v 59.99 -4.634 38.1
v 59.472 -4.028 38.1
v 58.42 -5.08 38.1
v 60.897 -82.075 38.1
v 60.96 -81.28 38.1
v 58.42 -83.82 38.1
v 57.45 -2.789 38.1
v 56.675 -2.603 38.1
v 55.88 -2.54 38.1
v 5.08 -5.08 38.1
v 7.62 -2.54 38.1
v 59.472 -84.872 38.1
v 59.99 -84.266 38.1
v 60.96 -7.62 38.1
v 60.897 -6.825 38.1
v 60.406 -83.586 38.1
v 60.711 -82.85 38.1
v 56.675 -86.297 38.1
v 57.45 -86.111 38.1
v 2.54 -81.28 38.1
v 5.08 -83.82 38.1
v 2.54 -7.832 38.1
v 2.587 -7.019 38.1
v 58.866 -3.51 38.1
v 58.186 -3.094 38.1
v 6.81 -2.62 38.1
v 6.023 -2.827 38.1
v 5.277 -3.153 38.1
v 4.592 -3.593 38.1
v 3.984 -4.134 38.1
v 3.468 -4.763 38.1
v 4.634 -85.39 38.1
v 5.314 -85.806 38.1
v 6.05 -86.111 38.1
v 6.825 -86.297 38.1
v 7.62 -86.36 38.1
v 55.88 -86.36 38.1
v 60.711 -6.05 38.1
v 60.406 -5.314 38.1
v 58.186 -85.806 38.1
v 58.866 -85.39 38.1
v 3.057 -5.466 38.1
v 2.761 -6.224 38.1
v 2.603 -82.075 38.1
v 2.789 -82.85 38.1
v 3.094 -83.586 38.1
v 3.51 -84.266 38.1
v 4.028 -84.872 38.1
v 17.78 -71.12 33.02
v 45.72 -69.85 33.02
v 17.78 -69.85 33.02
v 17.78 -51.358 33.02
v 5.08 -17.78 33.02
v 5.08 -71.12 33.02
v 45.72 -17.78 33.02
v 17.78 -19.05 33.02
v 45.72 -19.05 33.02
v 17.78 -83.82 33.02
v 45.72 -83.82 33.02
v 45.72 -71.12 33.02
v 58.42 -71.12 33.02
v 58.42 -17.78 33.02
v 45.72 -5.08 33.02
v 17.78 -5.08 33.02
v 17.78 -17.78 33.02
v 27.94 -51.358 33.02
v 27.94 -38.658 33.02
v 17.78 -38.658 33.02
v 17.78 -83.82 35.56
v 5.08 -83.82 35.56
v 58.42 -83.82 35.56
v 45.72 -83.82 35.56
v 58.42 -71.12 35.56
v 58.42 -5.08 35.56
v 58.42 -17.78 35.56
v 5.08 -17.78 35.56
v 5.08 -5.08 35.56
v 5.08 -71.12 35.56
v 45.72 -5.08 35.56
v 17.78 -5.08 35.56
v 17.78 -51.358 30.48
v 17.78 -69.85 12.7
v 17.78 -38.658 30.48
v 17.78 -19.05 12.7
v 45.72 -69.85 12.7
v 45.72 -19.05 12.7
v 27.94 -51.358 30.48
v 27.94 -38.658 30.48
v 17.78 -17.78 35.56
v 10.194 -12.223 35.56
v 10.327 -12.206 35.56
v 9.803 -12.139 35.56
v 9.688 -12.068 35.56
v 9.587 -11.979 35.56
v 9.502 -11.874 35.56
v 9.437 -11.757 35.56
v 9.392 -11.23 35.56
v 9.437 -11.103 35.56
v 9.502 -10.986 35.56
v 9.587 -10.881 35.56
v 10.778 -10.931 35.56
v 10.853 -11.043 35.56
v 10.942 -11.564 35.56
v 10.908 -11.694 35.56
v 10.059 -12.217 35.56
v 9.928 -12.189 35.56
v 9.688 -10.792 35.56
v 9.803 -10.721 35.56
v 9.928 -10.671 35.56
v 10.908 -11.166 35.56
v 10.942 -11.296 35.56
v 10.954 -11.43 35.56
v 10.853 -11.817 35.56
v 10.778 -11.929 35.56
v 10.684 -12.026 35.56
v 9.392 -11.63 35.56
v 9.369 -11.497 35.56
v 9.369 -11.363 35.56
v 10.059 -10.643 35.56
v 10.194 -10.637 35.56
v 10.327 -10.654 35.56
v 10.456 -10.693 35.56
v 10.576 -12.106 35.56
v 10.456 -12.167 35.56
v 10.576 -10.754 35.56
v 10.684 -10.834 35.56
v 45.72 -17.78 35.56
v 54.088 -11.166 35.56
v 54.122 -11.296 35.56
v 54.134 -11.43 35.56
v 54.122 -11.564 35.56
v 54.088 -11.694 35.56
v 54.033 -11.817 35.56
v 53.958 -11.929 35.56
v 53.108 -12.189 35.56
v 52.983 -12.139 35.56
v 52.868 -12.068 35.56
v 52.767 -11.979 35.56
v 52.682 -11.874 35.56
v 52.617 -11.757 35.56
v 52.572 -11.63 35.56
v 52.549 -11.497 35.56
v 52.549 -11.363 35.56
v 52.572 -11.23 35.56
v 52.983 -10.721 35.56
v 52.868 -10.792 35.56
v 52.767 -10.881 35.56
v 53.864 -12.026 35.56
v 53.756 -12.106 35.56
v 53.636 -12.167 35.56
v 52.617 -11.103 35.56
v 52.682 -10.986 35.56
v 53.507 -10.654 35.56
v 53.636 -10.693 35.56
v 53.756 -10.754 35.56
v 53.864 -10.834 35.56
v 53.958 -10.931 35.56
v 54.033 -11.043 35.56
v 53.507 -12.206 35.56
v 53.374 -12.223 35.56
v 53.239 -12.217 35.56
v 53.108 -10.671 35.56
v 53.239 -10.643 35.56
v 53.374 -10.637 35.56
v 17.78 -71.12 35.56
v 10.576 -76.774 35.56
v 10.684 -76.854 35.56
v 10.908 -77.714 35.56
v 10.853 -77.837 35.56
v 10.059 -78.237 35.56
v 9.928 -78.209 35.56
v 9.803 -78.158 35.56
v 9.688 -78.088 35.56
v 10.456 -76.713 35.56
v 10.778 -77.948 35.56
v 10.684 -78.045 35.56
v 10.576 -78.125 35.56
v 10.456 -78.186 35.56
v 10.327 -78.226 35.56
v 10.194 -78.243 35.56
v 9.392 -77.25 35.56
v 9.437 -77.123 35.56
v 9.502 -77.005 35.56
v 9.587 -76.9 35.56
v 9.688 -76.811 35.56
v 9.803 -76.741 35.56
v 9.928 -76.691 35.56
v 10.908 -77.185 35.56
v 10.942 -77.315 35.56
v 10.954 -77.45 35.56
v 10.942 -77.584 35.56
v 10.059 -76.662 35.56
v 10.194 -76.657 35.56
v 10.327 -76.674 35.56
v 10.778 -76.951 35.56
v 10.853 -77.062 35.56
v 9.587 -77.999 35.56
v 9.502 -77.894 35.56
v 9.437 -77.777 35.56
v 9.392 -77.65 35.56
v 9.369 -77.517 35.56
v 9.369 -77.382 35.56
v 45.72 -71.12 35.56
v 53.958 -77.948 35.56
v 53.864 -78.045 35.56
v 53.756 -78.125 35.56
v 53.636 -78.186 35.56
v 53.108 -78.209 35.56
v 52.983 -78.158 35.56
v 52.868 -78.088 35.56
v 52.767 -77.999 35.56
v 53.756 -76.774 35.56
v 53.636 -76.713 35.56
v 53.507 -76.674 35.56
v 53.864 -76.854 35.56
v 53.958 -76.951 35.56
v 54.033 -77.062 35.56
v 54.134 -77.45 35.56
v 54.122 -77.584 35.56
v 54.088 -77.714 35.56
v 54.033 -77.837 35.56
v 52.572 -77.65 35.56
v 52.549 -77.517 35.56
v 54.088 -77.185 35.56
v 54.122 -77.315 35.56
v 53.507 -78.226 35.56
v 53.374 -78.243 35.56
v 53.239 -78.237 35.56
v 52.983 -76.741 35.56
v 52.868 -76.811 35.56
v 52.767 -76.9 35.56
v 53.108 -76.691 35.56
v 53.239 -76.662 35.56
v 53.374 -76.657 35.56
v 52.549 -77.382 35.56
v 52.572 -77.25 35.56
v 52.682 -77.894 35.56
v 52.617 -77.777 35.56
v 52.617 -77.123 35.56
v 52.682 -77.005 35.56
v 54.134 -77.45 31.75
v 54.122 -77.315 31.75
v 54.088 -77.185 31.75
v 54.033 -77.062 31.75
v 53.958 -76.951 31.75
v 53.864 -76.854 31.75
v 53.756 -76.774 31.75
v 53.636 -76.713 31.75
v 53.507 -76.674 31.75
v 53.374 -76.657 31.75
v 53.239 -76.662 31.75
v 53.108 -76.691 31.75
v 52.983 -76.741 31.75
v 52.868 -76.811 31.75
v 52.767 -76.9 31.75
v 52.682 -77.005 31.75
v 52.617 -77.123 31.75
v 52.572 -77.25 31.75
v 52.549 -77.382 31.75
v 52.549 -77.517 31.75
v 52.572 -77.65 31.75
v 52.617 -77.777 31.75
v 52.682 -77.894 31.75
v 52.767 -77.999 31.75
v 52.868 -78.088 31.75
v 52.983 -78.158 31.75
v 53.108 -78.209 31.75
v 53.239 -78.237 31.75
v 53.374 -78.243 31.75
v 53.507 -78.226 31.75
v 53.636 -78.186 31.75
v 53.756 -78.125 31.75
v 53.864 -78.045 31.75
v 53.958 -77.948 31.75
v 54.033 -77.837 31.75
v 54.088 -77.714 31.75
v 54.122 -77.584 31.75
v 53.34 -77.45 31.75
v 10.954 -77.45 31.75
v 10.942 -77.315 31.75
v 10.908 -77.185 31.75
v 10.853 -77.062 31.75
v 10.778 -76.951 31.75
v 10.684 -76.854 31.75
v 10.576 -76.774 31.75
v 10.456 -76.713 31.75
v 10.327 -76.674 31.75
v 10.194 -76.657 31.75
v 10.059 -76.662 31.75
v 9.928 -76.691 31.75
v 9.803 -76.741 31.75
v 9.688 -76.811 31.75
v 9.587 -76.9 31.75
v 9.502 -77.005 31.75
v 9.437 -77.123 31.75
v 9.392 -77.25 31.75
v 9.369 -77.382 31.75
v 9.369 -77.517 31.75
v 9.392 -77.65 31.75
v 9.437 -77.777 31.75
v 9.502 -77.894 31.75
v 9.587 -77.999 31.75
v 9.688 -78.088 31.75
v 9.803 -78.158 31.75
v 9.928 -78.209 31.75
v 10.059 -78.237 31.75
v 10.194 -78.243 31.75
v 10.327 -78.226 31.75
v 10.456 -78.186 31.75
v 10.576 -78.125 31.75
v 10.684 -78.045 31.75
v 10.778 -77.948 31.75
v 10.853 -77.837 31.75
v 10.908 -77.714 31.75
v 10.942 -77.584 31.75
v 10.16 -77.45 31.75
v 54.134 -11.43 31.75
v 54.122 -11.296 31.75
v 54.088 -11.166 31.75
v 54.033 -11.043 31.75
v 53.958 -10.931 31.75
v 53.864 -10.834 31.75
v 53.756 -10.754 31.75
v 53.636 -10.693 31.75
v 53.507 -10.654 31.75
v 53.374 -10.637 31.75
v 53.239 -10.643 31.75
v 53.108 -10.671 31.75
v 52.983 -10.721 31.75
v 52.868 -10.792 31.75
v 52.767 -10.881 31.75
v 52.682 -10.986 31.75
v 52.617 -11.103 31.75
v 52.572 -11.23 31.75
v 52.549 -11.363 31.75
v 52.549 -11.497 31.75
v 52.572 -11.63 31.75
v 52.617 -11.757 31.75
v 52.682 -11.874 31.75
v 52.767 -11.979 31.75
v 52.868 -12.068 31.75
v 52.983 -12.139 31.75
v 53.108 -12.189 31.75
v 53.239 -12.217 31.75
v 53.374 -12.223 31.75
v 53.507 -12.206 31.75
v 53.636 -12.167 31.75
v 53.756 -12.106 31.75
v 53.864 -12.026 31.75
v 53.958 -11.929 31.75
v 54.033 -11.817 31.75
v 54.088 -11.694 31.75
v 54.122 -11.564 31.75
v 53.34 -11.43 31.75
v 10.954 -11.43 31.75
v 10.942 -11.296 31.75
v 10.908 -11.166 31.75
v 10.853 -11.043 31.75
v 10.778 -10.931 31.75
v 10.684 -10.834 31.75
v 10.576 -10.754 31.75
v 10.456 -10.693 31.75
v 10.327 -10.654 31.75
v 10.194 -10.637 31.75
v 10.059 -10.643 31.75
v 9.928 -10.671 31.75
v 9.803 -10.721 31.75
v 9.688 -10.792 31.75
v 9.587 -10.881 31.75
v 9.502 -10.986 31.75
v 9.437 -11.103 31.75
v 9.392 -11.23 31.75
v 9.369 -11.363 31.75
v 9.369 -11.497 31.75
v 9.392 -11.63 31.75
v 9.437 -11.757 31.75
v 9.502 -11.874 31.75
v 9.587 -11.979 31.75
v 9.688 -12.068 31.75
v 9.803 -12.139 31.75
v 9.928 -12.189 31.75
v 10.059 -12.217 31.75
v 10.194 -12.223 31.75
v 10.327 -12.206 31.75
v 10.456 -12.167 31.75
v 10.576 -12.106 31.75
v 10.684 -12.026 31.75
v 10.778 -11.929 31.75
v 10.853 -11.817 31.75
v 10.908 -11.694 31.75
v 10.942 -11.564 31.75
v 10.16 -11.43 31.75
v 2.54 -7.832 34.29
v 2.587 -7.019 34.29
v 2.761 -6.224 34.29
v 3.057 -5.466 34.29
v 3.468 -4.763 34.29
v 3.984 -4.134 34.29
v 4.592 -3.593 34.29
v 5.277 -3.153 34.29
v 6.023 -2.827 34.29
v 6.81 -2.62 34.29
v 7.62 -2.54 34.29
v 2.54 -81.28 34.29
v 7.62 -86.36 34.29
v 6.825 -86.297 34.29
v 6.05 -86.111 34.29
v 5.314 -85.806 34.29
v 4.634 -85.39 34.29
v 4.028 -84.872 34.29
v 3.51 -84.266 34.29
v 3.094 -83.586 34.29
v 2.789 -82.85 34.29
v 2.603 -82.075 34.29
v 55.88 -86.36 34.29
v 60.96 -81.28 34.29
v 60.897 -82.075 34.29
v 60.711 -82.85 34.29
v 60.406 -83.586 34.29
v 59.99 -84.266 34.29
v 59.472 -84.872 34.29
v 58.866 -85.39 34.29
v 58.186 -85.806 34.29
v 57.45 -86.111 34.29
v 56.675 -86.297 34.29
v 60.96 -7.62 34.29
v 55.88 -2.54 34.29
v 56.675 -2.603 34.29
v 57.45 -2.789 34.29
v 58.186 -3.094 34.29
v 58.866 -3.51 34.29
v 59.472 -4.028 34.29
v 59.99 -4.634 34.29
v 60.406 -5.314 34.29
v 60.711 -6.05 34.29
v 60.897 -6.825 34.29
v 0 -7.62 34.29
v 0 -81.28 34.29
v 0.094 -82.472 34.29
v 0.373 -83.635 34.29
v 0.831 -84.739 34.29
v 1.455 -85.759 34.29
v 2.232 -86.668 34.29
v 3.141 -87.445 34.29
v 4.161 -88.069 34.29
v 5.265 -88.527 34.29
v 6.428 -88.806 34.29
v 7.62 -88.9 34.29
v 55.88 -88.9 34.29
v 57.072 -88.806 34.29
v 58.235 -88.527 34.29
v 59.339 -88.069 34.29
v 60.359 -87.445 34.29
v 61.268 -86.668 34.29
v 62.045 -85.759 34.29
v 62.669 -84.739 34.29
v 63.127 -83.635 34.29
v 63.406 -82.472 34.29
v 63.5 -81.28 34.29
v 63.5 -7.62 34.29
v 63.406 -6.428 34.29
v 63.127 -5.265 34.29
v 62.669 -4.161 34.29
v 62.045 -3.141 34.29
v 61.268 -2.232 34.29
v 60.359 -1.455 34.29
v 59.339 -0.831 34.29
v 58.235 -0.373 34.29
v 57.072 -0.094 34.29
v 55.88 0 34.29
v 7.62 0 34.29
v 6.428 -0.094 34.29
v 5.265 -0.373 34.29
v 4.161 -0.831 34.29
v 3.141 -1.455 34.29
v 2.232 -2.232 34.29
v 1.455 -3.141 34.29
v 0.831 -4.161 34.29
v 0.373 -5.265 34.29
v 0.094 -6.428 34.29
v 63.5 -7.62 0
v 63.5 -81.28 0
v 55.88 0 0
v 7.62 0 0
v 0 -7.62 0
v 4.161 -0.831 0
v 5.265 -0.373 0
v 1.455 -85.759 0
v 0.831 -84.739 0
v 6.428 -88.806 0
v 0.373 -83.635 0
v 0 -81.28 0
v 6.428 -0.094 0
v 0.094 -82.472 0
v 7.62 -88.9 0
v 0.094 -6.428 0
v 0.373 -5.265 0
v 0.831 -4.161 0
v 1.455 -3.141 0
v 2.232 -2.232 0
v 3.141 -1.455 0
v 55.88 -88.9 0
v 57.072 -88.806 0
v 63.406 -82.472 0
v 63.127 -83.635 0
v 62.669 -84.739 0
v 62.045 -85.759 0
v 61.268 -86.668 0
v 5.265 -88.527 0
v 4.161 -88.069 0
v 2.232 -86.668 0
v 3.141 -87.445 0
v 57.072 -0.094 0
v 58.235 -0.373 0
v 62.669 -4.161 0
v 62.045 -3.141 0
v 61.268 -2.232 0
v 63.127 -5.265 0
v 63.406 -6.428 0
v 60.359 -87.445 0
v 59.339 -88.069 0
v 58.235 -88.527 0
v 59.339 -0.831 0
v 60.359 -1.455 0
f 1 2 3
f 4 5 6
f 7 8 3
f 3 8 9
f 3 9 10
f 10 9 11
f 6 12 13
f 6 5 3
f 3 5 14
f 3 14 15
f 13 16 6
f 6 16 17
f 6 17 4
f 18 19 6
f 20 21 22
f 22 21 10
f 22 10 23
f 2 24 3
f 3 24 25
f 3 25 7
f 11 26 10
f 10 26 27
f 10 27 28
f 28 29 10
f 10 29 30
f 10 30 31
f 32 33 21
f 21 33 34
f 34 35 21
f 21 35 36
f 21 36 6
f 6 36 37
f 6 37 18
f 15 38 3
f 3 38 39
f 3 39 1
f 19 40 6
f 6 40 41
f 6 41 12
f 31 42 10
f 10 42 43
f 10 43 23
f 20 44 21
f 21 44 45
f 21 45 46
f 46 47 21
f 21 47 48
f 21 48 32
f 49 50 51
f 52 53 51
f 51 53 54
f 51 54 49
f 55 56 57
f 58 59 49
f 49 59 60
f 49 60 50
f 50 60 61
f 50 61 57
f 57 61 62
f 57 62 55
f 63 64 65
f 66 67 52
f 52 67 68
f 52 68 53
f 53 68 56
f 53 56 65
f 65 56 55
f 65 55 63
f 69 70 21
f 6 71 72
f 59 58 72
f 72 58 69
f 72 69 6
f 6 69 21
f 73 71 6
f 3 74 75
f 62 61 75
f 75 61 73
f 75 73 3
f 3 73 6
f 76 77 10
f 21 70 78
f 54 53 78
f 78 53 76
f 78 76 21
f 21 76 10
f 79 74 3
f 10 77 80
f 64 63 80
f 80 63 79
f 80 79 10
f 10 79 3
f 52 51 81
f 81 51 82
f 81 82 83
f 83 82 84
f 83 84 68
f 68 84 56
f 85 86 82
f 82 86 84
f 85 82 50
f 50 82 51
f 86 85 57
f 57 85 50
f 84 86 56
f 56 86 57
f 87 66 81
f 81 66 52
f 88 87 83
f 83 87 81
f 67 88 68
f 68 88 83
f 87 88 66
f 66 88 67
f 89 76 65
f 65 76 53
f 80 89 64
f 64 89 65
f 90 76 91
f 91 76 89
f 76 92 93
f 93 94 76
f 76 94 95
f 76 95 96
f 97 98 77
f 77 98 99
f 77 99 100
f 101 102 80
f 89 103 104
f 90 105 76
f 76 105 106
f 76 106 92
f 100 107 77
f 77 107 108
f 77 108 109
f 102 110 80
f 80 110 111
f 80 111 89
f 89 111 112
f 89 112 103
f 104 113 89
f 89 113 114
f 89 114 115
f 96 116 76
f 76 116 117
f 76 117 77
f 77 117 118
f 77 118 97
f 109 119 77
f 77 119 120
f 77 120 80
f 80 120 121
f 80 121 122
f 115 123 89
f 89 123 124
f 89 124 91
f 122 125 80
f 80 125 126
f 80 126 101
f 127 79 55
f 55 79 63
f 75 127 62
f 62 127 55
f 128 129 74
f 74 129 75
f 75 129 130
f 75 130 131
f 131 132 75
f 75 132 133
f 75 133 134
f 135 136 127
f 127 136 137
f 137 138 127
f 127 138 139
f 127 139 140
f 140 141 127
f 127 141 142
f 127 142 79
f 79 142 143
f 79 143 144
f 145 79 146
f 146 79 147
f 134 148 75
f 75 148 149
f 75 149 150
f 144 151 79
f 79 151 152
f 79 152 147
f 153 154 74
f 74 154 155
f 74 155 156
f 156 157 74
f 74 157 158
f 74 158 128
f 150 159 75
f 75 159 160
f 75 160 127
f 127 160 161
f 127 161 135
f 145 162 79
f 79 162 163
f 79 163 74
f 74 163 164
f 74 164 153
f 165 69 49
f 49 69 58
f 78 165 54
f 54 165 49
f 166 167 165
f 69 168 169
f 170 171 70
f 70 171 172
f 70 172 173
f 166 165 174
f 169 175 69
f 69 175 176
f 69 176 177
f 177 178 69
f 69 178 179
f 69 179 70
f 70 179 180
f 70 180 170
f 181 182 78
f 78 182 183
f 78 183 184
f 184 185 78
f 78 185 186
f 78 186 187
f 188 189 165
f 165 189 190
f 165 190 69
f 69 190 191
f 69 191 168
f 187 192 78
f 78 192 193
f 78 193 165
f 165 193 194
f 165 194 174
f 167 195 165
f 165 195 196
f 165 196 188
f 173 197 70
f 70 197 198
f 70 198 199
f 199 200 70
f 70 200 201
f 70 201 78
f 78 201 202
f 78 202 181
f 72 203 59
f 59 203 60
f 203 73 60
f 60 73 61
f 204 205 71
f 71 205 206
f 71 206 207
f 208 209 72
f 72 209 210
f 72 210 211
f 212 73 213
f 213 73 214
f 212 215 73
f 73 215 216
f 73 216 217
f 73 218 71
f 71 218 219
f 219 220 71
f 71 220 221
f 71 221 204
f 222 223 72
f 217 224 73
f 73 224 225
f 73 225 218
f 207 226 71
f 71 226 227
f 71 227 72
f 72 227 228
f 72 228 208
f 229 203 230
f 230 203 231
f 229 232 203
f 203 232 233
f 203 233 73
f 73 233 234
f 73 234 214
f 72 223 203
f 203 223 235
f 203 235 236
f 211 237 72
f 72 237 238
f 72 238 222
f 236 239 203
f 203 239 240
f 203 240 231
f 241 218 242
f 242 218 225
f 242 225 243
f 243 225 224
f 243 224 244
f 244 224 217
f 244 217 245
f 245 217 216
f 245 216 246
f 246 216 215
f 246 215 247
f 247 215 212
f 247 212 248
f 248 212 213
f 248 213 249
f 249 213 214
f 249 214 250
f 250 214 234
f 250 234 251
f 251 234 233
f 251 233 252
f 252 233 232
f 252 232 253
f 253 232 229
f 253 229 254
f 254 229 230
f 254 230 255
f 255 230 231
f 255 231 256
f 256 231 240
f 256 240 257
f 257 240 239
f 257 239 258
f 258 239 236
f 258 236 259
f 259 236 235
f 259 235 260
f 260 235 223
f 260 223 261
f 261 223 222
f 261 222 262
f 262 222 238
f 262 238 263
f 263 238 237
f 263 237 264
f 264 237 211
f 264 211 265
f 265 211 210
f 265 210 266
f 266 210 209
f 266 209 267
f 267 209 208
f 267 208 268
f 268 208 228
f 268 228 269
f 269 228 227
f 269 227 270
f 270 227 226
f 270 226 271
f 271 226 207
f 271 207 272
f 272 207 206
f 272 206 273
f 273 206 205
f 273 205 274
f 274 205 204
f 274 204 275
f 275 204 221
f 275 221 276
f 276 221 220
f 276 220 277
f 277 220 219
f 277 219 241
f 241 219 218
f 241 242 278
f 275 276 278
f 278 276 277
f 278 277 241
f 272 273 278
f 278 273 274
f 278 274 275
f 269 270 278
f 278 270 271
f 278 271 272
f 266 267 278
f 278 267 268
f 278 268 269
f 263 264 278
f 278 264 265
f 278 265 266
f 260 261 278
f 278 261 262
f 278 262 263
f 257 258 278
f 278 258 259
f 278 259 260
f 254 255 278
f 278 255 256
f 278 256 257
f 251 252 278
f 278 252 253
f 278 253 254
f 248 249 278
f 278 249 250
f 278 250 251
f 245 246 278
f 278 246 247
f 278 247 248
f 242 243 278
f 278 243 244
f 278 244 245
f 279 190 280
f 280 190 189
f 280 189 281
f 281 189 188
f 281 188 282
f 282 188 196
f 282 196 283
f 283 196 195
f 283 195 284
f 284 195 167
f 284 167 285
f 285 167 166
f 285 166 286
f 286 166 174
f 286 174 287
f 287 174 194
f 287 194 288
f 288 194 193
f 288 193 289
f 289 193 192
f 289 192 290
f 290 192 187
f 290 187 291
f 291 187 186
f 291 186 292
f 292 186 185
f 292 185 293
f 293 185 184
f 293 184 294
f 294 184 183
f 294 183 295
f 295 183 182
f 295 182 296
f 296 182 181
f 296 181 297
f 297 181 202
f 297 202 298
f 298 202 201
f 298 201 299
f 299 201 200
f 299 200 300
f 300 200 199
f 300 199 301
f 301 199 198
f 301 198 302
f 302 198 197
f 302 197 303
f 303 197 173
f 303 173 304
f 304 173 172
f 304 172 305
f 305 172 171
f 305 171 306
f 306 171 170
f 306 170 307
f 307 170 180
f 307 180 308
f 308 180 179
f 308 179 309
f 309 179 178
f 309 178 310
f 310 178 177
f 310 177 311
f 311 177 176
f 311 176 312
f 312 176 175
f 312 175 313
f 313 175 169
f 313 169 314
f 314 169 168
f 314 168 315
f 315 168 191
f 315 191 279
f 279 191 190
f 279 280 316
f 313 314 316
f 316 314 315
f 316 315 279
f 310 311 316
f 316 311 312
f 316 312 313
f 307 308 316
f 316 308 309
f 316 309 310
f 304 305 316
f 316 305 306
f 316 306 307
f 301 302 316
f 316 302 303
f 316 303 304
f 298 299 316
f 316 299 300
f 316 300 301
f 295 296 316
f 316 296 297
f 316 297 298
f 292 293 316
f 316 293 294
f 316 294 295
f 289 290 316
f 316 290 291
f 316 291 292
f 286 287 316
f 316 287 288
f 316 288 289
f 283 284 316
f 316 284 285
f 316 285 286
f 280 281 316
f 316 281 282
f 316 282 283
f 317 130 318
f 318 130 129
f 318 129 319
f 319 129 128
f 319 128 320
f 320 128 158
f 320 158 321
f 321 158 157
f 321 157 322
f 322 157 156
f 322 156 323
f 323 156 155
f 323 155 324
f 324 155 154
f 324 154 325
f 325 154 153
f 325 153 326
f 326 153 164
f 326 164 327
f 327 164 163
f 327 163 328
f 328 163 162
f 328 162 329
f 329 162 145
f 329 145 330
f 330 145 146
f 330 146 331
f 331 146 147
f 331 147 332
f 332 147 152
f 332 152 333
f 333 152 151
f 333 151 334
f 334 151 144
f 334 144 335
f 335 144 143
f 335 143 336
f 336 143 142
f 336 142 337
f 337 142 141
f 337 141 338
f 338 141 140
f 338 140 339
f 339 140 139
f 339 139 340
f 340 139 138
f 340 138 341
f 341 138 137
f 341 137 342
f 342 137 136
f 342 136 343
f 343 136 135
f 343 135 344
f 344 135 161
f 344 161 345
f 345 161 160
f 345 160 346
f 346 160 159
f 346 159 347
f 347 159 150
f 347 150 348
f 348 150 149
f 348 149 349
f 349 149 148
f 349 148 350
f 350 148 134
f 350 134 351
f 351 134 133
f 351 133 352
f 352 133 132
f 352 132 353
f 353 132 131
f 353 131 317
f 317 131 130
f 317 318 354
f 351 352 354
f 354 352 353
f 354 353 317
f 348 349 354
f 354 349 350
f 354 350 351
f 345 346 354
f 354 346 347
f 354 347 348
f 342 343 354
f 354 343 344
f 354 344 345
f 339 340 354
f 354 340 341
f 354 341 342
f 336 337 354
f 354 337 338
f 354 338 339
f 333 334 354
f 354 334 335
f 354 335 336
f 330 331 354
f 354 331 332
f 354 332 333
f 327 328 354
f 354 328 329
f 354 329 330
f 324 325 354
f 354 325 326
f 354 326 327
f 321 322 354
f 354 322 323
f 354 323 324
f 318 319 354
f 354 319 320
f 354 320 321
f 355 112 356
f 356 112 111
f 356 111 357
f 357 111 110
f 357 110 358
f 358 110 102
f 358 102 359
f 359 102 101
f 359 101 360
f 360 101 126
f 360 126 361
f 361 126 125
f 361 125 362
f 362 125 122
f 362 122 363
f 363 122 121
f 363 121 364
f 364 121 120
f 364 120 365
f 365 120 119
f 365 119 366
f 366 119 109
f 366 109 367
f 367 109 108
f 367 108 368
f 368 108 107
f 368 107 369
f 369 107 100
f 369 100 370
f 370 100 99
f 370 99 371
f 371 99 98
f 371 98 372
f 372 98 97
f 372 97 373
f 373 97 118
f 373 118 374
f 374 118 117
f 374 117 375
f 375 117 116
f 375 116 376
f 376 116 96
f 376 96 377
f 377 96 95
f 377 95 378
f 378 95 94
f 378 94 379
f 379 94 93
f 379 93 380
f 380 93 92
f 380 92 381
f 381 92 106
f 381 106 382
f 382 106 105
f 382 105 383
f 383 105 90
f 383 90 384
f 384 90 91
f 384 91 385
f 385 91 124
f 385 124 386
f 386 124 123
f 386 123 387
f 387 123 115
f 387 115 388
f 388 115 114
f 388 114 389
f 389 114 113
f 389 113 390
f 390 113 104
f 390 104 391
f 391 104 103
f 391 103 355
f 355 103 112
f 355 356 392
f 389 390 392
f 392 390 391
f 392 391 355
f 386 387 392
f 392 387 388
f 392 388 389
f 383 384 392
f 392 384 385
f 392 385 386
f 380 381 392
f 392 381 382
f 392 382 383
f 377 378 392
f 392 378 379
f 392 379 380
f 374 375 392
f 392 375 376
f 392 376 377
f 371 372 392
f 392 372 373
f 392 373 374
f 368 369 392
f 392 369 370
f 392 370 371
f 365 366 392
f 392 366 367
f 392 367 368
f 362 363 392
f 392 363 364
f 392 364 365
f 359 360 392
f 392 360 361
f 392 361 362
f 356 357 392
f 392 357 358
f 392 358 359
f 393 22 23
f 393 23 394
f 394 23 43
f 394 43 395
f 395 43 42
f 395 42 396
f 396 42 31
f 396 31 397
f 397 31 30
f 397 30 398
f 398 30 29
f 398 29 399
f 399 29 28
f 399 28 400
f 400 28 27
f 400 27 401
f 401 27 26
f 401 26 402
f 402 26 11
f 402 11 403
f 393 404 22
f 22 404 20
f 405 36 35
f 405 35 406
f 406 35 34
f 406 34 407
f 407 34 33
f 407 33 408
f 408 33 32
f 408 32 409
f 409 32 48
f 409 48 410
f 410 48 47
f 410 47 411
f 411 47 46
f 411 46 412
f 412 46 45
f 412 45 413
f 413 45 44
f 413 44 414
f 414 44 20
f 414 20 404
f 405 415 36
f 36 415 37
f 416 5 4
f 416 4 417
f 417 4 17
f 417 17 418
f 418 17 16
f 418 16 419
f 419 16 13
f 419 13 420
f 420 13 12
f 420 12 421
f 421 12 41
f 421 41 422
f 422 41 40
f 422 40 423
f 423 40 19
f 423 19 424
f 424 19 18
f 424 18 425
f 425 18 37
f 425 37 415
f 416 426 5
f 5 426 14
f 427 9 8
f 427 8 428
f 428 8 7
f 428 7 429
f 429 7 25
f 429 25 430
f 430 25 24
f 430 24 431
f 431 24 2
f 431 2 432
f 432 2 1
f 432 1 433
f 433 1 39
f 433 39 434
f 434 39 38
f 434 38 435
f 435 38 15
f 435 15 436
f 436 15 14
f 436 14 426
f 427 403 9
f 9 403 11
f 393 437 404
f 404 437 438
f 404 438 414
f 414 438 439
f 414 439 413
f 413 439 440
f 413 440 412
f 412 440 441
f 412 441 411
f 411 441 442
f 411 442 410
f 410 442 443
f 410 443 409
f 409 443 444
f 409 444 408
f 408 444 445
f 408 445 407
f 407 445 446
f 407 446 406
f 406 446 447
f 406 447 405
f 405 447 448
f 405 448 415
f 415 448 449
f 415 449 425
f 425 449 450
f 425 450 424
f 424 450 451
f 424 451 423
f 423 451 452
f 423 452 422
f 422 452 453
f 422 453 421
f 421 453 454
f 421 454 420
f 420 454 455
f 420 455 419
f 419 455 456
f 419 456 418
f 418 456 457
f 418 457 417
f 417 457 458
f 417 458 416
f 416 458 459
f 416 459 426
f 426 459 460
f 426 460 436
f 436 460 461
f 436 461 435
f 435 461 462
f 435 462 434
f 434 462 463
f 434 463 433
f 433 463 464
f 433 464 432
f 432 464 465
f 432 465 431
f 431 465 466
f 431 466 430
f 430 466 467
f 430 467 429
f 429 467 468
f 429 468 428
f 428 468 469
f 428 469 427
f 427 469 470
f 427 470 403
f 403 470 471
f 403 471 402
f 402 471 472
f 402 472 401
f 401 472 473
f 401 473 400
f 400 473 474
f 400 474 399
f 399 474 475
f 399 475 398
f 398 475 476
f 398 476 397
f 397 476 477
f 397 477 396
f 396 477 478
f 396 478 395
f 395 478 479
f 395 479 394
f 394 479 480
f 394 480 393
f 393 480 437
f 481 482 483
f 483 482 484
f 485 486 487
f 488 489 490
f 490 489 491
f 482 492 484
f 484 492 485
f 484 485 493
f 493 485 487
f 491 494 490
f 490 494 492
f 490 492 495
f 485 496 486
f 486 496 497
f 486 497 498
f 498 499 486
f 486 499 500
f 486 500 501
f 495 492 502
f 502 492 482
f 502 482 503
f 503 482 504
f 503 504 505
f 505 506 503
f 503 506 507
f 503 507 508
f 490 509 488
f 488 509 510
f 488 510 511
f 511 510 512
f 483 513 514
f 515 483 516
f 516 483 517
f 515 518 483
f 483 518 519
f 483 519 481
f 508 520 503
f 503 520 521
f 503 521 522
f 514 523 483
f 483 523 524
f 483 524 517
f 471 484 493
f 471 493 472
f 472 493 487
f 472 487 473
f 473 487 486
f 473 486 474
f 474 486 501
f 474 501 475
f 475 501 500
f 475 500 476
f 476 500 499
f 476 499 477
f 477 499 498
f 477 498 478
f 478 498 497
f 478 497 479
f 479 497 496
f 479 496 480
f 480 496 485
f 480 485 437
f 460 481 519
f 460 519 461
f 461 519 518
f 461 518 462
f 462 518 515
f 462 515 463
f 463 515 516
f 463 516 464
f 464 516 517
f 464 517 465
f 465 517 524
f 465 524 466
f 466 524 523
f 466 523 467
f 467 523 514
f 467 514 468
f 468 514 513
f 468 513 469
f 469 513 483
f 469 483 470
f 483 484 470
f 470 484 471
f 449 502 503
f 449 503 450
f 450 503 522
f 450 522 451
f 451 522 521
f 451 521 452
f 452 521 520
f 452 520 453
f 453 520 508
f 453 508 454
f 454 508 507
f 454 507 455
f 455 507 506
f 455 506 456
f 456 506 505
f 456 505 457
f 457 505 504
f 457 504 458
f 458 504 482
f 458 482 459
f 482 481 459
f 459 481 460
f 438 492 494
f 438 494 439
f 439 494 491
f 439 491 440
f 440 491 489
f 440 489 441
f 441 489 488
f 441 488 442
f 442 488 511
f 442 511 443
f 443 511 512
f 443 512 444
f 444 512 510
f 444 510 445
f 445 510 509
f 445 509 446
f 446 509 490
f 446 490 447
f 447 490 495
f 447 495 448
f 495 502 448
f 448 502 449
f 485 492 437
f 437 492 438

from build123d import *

# Parameters (mm, degrees)
SKETCH1_W           = 63.5
SKETCH1_H           = 88.9
BOSS_EXTRUDE1_DEPTH = 38.1
SKETCH2_W           = 27.94
SKETCH2_H           = 50.8
CUT_EXTRUDE1_DEPTH  = 25.4
SKETCH3_W           = 53.34
SKETCH3_H           = 78.74
CUT_EXTRUDE2_DEPTH  = 5.08
SKETCH4_W           = 2.54
SKETCH4_H           = 12.7
BOSS_EXTRUDE2_DEPTH = 10.16
SKETCH5_W           = 12.7
SKETCH5_H           = 12.7
BOSS_EXTRUDE3_DEPTH = 2.54
SKETCH7_R           = 0.79375
CUT_EXTRUDE3_DEPTH  = 3.81
FILLET1_R           = 7.62
CUT_EXTRUDE4_DEPTH  = 3.81


with BuildPart() as part:
    # Sketch1 → Boss-Extrude1 (new body)
    with BuildSketch(Plane.XY):
        with Locations((31.75, -44.45)):
            Rectangle(SKETCH1_W, SKETCH1_H)
    extrude(amount=BOSS_EXTRUDE1_DEPTH)

    # Sketch2 → Cut-Extrude1 (cut)
    with BuildSketch(Plane.XY.offset(38.1)):
        with Locations((31.75, -44.45)):
            Rectangle(SKETCH2_W, SKETCH2_H)
    extrude(amount=-CUT_EXTRUDE1_DEPTH, mode=Mode.SUBTRACT)

    # Sketch3 → Cut-Extrude2 (cut)
    with BuildSketch(Plane.XY.offset(38.1)):
        with Locations((31.75, -44.45)):
            Rectangle(SKETCH3_W, SKETCH3_H)
    extrude(amount=-CUT_EXTRUDE2_DEPTH, mode=Mode.SUBTRACT)

    # Sketch4 → Boss-Extrude2 (add)
    with BuildSketch(Plane(origin=(17.78, 0, 0), x_dir=(0, 0, -1), z_dir=(1, 0, 0))):
        with Locations((-31.75, -45.007977767)):
            Rectangle(SKETCH4_W, SKETCH4_H)
    extrude(amount=BOSS_EXTRUDE2_DEPTH)

    # Sketch5 → Boss-Extrude3 (add)
    with BuildSketch(Plane.XY.offset(33.02)):
        with Locations((11.43, -11.43)):
            Rectangle(SKETCH5_W, SKETCH5_H)
        with Locations((52.07, -11.43)):
            Rectangle(SKETCH5_W, SKETCH5_H)
        with Locations((11.43, -77.47)):
            Rectangle(SKETCH5_W, SKETCH5_H)
        with Locations((52.07, -77.47)):
            Rectangle(SKETCH5_W, SKETCH5_H)
    extrude(amount=BOSS_EXTRUDE3_DEPTH)

    # Sketch7 → Cut-Extrude3 (cut)
    with BuildSketch(Plane.XY.offset(35.56)):
        with Locations((10.16, -11.43)):
            Circle(SKETCH7_R)
        with Locations((53.34, -11.43)):
            Circle(SKETCH7_R)
        with Locations((10.16, -77.449583408)):
            Circle(SKETCH7_R)
        with Locations((53.34, -77.449583408)):
            Circle(SKETCH7_R)
    extrude(amount=-CUT_EXTRUDE3_DEPTH, mode=Mode.SUBTRACT)

    # Fillet1
    fillet1_edges = [part.edges().sort_by_distance(p)[0] for p in [
        (0, 0, 19.05),
        (63.5, 0, 19.05),
        (63.5, -88.9, 19.05),
        (0, -88.9, 19.05),
    ]]
    fillet(fillet1_edges, radius=FILLET1_R)

    # Sketch8 → Cut-Extrude4 (cut)
    with BuildSketch(Plane.XY.offset(38.1)):
        with BuildLine():
            ThreePointArc((0, -81.28), (2.231846327, -86.668153673), (7.62, -88.9))
            Line((7.62, -88.9), (55.88, -88.9))
            ThreePointArc((55.88, -88.9), (61.268153673, -86.668153673), (63.5, -81.28))
            Line((63.5, -81.28), (63.5, -7.62))
            ThreePointArc((63.5, -7.62), (61.268153673, -2.231846327), (55.88, 0))
            Line((55.88, 0), (7.62, 0))
            ThreePointArc((7.62, 0), (2.231846327, -2.231846327), (0, -7.62))
            Line((0, -7.62), (0, -81.28))
        make_face()
        with BuildLine():
            ThreePointArc((7.62, -2.54), (3.984072808, -4.133699841), (2.54, -7.831604579))
            Line((2.54, -7.831604579), (2.54, -81.28))
            ThreePointArc((2.54, -81.28), (4.027897552, -84.872102448), (7.62, -86.36))
            Line((7.62, -86.36), (55.88, -86.36))
            ThreePointArc((55.88, -86.36), (59.472102448, -84.872102448), (60.96, -81.28))
            Line((60.96, -81.28), (60.96, -7.62))
            ThreePointArc((60.96, -7.62), (59.472102448, -4.027897552), (55.88, -2.54))
            Line((55.88, -2.54), (7.62, -2.54))
        make_face(mode=Mode.SUBTRACT)
    extrude(amount=-CUT_EXTRUDE4_DEPTH, mode=Mode.SUBTRACT)


solid = part.part
